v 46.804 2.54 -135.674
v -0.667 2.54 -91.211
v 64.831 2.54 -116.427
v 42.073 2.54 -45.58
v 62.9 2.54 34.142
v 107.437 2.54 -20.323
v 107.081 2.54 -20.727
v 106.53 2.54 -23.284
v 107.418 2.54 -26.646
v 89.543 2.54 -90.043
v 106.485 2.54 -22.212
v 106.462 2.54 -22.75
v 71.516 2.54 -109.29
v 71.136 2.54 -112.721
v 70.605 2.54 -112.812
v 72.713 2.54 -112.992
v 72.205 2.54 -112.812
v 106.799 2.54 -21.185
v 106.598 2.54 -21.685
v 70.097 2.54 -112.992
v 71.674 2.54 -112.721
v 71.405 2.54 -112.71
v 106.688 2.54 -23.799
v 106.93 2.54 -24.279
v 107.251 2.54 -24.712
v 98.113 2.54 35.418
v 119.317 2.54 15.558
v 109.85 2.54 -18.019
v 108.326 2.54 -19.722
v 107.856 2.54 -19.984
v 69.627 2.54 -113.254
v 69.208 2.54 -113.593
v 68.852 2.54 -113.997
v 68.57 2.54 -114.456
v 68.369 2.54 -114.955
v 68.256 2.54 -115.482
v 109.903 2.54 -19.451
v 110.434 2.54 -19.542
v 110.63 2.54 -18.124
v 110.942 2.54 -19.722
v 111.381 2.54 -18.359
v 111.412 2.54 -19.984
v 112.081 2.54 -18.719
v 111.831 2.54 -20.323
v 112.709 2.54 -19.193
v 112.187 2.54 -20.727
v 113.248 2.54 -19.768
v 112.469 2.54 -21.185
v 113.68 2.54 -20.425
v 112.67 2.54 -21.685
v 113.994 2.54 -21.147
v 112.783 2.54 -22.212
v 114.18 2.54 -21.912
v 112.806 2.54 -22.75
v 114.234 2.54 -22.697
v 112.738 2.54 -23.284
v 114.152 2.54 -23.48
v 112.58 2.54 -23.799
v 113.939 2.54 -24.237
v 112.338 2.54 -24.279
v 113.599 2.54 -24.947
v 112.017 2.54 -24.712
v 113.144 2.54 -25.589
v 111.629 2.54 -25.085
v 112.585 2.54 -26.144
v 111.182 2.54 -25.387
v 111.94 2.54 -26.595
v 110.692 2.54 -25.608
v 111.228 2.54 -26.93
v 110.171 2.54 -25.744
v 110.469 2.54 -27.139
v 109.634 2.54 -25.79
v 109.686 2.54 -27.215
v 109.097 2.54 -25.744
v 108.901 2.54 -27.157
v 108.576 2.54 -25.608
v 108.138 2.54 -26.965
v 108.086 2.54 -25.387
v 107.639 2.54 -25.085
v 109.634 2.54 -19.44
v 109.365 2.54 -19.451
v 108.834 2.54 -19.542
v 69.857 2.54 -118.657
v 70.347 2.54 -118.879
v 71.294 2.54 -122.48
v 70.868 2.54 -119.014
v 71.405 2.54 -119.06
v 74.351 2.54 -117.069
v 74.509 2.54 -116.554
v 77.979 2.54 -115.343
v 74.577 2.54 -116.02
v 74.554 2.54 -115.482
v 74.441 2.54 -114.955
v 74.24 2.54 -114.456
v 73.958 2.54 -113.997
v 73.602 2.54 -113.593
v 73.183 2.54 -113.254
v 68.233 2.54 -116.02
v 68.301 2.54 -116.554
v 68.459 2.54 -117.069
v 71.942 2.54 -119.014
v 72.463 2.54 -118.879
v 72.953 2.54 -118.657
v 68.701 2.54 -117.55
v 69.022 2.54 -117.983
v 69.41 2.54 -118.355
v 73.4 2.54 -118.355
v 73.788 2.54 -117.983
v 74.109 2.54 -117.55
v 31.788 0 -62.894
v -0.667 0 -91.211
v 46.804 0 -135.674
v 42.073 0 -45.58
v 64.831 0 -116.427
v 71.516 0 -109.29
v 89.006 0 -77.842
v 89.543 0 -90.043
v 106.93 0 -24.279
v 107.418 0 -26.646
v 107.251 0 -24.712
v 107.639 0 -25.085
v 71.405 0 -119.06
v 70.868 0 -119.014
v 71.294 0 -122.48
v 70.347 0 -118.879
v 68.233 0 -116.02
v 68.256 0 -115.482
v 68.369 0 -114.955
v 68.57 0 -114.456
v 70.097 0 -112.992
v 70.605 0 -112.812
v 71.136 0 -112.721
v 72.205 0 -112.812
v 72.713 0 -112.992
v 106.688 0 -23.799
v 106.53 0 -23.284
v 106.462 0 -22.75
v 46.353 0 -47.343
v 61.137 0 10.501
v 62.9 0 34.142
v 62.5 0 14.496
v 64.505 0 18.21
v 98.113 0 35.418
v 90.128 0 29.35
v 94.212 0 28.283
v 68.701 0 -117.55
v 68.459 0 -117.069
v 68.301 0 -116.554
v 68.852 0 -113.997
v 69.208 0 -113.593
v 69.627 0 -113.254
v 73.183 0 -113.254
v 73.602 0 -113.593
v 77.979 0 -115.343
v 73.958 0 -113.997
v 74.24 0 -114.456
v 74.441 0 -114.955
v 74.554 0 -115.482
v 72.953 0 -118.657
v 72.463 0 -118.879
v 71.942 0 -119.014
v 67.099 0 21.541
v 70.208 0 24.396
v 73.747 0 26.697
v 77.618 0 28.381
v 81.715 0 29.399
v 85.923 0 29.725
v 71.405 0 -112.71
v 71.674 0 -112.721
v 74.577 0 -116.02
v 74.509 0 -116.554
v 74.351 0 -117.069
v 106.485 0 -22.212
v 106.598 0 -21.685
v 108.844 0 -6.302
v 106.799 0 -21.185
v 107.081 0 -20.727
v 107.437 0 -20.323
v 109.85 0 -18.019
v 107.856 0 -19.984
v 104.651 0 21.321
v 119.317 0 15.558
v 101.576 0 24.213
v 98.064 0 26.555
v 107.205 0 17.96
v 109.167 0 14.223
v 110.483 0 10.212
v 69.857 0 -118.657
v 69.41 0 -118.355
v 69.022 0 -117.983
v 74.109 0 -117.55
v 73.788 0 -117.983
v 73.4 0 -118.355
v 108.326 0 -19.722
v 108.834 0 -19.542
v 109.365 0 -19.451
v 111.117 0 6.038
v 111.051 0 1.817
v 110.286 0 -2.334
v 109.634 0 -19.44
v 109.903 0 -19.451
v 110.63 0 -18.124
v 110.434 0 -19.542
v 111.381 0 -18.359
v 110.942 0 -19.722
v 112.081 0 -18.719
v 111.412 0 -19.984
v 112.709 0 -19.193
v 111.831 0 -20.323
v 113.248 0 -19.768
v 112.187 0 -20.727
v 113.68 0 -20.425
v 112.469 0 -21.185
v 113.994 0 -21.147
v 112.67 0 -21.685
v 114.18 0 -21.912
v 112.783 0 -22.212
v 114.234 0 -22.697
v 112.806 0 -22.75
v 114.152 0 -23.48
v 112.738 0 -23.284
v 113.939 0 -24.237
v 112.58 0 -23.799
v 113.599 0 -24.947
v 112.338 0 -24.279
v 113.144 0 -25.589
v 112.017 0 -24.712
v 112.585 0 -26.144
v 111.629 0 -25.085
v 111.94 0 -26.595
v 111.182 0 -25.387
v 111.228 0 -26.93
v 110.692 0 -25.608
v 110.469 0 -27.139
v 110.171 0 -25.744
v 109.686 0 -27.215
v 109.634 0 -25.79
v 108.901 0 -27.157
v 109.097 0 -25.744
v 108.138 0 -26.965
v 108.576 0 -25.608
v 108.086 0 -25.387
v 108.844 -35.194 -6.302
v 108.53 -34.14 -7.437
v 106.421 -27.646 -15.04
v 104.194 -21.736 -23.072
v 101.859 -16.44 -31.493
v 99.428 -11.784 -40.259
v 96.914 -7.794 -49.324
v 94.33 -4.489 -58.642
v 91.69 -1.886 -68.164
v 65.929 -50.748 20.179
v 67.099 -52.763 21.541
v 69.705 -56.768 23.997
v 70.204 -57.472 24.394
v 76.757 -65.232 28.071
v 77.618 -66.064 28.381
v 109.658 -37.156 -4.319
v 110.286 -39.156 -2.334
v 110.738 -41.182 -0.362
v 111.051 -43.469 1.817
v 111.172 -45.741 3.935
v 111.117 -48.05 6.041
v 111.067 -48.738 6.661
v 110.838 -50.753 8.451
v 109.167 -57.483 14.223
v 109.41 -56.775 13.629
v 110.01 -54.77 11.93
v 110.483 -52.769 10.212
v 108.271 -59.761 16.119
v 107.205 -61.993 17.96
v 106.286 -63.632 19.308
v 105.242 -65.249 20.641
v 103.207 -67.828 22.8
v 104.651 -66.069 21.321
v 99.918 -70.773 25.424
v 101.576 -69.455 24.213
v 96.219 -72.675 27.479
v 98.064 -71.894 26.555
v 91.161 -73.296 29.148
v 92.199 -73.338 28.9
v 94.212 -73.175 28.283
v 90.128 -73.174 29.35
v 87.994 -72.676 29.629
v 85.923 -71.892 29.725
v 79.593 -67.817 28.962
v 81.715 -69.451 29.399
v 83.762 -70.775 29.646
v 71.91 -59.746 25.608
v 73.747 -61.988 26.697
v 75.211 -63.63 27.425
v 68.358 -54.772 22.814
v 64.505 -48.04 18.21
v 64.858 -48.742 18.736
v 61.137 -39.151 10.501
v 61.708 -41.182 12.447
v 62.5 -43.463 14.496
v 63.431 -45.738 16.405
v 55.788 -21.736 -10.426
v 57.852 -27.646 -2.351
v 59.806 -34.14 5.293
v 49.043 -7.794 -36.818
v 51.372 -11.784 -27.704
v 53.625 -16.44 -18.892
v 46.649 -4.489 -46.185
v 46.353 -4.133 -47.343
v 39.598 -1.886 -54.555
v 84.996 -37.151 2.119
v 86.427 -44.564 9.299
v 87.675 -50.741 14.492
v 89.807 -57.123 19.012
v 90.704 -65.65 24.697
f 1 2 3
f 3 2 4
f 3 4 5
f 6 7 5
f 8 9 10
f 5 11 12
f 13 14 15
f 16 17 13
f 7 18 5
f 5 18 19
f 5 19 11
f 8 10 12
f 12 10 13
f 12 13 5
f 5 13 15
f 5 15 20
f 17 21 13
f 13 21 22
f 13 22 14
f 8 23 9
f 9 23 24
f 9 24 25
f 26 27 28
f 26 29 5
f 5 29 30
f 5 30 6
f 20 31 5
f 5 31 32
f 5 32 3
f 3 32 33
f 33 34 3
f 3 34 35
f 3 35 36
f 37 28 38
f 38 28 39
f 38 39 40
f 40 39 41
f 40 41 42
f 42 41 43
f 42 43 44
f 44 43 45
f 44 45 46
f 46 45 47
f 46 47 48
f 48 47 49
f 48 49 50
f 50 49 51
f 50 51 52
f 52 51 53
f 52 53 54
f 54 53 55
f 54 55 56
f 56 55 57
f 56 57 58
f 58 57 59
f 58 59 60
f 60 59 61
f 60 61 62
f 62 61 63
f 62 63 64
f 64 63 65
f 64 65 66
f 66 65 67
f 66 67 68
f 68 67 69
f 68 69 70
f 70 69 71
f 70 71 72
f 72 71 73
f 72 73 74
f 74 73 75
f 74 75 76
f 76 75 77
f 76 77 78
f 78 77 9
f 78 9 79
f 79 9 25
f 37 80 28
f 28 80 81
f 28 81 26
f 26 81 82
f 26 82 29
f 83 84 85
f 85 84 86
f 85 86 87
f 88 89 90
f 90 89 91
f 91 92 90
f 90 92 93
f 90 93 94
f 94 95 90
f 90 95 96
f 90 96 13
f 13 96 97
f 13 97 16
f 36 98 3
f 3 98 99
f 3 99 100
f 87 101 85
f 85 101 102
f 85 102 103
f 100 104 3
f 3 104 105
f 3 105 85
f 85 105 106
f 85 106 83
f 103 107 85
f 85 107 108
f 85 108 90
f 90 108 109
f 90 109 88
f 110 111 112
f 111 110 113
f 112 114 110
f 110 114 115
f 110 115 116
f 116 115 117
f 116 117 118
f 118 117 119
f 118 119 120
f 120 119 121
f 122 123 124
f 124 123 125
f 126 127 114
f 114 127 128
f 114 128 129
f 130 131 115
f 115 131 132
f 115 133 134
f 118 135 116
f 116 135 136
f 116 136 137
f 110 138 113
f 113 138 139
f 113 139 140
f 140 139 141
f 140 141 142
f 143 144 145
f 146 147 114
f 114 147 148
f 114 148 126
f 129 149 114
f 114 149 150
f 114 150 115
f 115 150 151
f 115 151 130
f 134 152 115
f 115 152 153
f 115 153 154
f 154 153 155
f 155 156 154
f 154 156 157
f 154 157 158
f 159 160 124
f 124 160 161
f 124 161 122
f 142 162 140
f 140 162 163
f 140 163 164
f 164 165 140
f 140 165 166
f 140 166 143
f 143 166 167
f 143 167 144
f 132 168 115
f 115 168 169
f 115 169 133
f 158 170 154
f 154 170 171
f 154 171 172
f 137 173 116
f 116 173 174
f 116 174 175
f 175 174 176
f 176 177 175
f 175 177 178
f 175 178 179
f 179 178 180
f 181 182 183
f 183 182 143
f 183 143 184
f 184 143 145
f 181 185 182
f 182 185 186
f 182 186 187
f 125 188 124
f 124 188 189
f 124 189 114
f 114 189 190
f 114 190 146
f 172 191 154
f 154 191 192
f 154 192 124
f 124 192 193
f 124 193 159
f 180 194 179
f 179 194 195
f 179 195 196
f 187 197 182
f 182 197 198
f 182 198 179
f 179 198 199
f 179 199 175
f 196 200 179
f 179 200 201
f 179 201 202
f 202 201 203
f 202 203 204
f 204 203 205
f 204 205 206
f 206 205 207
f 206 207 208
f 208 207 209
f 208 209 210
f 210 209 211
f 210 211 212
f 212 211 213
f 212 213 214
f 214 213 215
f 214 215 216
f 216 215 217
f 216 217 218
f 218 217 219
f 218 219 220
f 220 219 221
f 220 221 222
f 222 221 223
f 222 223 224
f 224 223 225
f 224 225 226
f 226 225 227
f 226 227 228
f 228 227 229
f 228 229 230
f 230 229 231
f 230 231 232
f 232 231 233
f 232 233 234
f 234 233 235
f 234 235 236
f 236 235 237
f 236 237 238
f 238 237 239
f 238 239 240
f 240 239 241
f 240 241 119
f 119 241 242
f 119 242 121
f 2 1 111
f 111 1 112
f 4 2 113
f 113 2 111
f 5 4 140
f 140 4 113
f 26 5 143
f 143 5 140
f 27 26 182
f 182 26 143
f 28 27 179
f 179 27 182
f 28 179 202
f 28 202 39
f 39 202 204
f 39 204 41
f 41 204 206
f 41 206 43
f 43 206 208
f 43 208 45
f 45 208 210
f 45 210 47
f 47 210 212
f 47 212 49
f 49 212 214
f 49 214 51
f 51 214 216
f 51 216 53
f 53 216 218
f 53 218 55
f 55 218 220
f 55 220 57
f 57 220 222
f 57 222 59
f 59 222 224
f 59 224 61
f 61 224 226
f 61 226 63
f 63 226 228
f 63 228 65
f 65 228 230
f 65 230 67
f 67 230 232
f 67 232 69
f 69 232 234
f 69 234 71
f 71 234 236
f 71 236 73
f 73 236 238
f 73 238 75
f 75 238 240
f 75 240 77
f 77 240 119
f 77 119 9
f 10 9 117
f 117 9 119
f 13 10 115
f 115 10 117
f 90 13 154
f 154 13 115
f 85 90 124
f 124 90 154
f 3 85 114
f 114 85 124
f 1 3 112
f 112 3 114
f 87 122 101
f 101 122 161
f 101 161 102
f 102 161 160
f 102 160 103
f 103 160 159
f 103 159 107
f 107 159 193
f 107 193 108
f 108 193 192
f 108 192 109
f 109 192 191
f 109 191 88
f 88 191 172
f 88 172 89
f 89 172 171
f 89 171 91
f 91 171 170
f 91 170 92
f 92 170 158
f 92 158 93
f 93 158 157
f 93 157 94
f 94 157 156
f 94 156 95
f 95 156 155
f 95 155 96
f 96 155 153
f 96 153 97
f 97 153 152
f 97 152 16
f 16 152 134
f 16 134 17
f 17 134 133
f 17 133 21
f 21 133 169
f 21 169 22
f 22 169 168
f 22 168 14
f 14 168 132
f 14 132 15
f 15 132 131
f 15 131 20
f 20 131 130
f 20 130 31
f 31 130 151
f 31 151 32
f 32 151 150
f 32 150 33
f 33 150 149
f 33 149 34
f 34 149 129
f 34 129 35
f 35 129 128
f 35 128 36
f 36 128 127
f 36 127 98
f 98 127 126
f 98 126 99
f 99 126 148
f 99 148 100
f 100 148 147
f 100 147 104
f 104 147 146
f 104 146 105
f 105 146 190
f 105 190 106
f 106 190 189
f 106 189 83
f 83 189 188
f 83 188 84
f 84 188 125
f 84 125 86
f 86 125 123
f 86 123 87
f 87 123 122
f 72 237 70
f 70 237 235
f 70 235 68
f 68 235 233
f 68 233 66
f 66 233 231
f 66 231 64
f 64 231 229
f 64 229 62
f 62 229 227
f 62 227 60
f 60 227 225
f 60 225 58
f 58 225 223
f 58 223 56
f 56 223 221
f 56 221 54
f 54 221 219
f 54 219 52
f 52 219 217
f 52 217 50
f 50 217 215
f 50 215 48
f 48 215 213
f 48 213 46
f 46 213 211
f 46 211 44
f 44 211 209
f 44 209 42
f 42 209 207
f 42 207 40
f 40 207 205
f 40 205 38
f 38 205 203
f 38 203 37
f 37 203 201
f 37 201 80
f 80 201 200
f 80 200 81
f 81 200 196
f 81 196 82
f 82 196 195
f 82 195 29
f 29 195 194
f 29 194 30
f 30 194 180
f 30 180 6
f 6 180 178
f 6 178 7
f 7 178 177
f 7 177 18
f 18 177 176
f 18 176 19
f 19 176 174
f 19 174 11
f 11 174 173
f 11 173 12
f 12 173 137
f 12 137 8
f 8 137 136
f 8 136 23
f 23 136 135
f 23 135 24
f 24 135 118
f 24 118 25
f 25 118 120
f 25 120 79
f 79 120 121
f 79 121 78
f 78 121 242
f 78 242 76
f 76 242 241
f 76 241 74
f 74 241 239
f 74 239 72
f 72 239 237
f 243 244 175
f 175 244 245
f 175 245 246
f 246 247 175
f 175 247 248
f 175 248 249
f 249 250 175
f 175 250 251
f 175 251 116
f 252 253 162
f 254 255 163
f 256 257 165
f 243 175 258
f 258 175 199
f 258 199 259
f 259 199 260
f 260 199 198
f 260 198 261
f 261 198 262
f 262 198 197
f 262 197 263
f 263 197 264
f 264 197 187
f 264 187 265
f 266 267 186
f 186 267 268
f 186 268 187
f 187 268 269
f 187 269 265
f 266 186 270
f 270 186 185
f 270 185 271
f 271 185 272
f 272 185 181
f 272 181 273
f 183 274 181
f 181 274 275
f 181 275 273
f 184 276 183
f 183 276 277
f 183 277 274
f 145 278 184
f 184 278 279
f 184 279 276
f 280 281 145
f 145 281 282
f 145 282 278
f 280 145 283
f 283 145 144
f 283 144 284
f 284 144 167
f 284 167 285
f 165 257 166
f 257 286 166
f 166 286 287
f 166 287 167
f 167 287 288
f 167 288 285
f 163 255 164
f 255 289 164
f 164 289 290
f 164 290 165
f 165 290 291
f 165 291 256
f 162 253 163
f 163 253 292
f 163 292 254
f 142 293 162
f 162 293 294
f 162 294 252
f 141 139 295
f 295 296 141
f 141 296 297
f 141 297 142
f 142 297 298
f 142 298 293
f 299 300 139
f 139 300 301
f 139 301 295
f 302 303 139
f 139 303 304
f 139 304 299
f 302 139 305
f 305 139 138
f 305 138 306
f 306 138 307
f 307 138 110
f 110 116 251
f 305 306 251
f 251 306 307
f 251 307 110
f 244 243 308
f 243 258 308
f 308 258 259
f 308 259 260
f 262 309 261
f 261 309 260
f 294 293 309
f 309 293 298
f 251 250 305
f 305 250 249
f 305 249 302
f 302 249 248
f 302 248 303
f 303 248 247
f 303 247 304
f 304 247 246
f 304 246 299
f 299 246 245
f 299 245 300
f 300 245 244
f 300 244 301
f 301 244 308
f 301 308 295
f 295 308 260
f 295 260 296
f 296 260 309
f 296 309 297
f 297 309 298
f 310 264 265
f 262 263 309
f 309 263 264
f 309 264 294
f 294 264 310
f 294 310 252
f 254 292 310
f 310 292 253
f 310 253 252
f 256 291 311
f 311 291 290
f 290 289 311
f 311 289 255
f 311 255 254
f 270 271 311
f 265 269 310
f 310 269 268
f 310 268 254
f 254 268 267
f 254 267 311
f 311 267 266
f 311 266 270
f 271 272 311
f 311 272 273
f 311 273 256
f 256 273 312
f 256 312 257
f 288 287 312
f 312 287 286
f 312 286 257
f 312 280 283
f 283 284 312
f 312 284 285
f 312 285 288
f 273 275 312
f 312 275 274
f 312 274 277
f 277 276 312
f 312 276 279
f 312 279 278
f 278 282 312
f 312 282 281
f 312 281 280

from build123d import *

# Parameters (mm, degrees)
SKETCH3_R               = 3.175
BOSS_EXTRUDE1_DEPTH     = 2.54
BOSS_EXTRUDE2_DEPTH     = 76.2
CUT_EXTRUDE1_DEPTH      = 159.608869597
CUT_EXTRUDE1_DEPTH_BACK = 159.608869597


with BuildPart() as part:
    # Sketch3 → Boss-Extrude1 (new body)
    with BuildSketch(Plane(origin=(0, 0, 0), x_dir=(1, 0, 0), z_dir=(0, 1, 0))):
        with BuildLine():
            Line((-0.667272367, 91.211244064), (42.072585982, 45.579833776))
            Line((42.072585982, 45.579833776), (62.900199296, -34.141504839))
            Line((62.900199296, -34.141504839), (98.113451188, -35.418279698))
            Line((98.113451188, -35.418279698), (119.317385982, -15.557986891))
            Line((119.317385982, -15.557986891), (109.850299083, 18.019409705))
            ThreePointArc((109.850299083, 18.019409705), (114.061816463, 23.863253473), (107.41792498, 26.646434133))
            Line((107.41792498, 26.646434133), (89.543483254, 90.042621912))
            Line((89.543483254, 90.042621912), (71.515910096, 109.289844975))
            Line((71.515910096, 109.289844975), (77.978605526, 115.34301505))
            Line((77.978605526, 115.34301505), (71.293896806, 122.479975678))
            Line((71.293896806, 122.479975678), (64.831201375, 116.426805602))
            Line((64.831201375, 116.426805602), (46.803628217, 135.674028665))
            Line((46.803628217, 135.674028665), (-0.667272367, 91.211244064))
        make_face()
        with Locations(Location((71.405004975, 115.88499878, 0), (0, 0, 270))):
            Circle(SKETCH3_R, mode=Mode.SUBTRACT)
        with Locations(Location((109.633944273, 22.61482283, 0), (0, 0, 270))):
            Circle(SKETCH3_R, mode=Mode.SUBTRACT)
    extrude(amount=BOSS_EXTRUDE1_DEPTH)

    # Sketch4 → Boss-Extrude2 (add)
    with BuildSketch(Plane(origin=(0, 2.54, 0), x_dir=(1, 0, 0), z_dir=(0, 1, 0))):
        with BuildLine():
            Line((46.803628217, 129.736619854), (5.454929405, 91.008087929))
            Line((5.454929405, 91.008087929), (46.353114934, 47.342948269))
            Line((46.353114934, 47.342948269), (61.1366863, -10.500532511))
            ThreePointArc((61.1366863, -10.500532511), (94.212402493, -28.283463558), (108.844487247, 6.301760657))
            Line((108.844487247, 6.301760657), (86.410796294, 87.200194916))
            Line((86.410796294, 87.200194916), (46.803628217, 129.736619854))
        make_face()
    extrude(amount=-BOSS_EXTRUDE2_DEPTH)

    # Sketch14 → Cut-Extrude1 (cut, two sides: drawn at the far end of the back side and taken through both)
    with BuildSketch(Plane(origin=(50.531559178, 0, -13.201631997), x_dir=(0.25277120811930814, 0, 0.9675260804473983), z_dir=(-0.9675260804473983, 0, 0.25277120811930814)).offset(-CUT_EXTRUDE1_DEPTH_BACK)):
        with BuildLine():
            Line((-119.586340422, -76.2), (-7.964682874, -76.2))
            Line((-7.964682874, -76.2), (52.762632555, -76.2))
            ThreePointArc((52.762632555, -76.2), (9.204123856, -25.310156709), (-52.816161516, 0))
            Line((-52.816161516, 0), (-119.586340422, 0))
            Line((-119.586340422, 0), (-119.586340422, -76.2))
        make_face()
    extrude(amount=CUT_EXTRUDE1_DEPTH + CUT_EXTRUDE1_DEPTH_BACK, mode=Mode.SUBTRACT)


solid = part.part
